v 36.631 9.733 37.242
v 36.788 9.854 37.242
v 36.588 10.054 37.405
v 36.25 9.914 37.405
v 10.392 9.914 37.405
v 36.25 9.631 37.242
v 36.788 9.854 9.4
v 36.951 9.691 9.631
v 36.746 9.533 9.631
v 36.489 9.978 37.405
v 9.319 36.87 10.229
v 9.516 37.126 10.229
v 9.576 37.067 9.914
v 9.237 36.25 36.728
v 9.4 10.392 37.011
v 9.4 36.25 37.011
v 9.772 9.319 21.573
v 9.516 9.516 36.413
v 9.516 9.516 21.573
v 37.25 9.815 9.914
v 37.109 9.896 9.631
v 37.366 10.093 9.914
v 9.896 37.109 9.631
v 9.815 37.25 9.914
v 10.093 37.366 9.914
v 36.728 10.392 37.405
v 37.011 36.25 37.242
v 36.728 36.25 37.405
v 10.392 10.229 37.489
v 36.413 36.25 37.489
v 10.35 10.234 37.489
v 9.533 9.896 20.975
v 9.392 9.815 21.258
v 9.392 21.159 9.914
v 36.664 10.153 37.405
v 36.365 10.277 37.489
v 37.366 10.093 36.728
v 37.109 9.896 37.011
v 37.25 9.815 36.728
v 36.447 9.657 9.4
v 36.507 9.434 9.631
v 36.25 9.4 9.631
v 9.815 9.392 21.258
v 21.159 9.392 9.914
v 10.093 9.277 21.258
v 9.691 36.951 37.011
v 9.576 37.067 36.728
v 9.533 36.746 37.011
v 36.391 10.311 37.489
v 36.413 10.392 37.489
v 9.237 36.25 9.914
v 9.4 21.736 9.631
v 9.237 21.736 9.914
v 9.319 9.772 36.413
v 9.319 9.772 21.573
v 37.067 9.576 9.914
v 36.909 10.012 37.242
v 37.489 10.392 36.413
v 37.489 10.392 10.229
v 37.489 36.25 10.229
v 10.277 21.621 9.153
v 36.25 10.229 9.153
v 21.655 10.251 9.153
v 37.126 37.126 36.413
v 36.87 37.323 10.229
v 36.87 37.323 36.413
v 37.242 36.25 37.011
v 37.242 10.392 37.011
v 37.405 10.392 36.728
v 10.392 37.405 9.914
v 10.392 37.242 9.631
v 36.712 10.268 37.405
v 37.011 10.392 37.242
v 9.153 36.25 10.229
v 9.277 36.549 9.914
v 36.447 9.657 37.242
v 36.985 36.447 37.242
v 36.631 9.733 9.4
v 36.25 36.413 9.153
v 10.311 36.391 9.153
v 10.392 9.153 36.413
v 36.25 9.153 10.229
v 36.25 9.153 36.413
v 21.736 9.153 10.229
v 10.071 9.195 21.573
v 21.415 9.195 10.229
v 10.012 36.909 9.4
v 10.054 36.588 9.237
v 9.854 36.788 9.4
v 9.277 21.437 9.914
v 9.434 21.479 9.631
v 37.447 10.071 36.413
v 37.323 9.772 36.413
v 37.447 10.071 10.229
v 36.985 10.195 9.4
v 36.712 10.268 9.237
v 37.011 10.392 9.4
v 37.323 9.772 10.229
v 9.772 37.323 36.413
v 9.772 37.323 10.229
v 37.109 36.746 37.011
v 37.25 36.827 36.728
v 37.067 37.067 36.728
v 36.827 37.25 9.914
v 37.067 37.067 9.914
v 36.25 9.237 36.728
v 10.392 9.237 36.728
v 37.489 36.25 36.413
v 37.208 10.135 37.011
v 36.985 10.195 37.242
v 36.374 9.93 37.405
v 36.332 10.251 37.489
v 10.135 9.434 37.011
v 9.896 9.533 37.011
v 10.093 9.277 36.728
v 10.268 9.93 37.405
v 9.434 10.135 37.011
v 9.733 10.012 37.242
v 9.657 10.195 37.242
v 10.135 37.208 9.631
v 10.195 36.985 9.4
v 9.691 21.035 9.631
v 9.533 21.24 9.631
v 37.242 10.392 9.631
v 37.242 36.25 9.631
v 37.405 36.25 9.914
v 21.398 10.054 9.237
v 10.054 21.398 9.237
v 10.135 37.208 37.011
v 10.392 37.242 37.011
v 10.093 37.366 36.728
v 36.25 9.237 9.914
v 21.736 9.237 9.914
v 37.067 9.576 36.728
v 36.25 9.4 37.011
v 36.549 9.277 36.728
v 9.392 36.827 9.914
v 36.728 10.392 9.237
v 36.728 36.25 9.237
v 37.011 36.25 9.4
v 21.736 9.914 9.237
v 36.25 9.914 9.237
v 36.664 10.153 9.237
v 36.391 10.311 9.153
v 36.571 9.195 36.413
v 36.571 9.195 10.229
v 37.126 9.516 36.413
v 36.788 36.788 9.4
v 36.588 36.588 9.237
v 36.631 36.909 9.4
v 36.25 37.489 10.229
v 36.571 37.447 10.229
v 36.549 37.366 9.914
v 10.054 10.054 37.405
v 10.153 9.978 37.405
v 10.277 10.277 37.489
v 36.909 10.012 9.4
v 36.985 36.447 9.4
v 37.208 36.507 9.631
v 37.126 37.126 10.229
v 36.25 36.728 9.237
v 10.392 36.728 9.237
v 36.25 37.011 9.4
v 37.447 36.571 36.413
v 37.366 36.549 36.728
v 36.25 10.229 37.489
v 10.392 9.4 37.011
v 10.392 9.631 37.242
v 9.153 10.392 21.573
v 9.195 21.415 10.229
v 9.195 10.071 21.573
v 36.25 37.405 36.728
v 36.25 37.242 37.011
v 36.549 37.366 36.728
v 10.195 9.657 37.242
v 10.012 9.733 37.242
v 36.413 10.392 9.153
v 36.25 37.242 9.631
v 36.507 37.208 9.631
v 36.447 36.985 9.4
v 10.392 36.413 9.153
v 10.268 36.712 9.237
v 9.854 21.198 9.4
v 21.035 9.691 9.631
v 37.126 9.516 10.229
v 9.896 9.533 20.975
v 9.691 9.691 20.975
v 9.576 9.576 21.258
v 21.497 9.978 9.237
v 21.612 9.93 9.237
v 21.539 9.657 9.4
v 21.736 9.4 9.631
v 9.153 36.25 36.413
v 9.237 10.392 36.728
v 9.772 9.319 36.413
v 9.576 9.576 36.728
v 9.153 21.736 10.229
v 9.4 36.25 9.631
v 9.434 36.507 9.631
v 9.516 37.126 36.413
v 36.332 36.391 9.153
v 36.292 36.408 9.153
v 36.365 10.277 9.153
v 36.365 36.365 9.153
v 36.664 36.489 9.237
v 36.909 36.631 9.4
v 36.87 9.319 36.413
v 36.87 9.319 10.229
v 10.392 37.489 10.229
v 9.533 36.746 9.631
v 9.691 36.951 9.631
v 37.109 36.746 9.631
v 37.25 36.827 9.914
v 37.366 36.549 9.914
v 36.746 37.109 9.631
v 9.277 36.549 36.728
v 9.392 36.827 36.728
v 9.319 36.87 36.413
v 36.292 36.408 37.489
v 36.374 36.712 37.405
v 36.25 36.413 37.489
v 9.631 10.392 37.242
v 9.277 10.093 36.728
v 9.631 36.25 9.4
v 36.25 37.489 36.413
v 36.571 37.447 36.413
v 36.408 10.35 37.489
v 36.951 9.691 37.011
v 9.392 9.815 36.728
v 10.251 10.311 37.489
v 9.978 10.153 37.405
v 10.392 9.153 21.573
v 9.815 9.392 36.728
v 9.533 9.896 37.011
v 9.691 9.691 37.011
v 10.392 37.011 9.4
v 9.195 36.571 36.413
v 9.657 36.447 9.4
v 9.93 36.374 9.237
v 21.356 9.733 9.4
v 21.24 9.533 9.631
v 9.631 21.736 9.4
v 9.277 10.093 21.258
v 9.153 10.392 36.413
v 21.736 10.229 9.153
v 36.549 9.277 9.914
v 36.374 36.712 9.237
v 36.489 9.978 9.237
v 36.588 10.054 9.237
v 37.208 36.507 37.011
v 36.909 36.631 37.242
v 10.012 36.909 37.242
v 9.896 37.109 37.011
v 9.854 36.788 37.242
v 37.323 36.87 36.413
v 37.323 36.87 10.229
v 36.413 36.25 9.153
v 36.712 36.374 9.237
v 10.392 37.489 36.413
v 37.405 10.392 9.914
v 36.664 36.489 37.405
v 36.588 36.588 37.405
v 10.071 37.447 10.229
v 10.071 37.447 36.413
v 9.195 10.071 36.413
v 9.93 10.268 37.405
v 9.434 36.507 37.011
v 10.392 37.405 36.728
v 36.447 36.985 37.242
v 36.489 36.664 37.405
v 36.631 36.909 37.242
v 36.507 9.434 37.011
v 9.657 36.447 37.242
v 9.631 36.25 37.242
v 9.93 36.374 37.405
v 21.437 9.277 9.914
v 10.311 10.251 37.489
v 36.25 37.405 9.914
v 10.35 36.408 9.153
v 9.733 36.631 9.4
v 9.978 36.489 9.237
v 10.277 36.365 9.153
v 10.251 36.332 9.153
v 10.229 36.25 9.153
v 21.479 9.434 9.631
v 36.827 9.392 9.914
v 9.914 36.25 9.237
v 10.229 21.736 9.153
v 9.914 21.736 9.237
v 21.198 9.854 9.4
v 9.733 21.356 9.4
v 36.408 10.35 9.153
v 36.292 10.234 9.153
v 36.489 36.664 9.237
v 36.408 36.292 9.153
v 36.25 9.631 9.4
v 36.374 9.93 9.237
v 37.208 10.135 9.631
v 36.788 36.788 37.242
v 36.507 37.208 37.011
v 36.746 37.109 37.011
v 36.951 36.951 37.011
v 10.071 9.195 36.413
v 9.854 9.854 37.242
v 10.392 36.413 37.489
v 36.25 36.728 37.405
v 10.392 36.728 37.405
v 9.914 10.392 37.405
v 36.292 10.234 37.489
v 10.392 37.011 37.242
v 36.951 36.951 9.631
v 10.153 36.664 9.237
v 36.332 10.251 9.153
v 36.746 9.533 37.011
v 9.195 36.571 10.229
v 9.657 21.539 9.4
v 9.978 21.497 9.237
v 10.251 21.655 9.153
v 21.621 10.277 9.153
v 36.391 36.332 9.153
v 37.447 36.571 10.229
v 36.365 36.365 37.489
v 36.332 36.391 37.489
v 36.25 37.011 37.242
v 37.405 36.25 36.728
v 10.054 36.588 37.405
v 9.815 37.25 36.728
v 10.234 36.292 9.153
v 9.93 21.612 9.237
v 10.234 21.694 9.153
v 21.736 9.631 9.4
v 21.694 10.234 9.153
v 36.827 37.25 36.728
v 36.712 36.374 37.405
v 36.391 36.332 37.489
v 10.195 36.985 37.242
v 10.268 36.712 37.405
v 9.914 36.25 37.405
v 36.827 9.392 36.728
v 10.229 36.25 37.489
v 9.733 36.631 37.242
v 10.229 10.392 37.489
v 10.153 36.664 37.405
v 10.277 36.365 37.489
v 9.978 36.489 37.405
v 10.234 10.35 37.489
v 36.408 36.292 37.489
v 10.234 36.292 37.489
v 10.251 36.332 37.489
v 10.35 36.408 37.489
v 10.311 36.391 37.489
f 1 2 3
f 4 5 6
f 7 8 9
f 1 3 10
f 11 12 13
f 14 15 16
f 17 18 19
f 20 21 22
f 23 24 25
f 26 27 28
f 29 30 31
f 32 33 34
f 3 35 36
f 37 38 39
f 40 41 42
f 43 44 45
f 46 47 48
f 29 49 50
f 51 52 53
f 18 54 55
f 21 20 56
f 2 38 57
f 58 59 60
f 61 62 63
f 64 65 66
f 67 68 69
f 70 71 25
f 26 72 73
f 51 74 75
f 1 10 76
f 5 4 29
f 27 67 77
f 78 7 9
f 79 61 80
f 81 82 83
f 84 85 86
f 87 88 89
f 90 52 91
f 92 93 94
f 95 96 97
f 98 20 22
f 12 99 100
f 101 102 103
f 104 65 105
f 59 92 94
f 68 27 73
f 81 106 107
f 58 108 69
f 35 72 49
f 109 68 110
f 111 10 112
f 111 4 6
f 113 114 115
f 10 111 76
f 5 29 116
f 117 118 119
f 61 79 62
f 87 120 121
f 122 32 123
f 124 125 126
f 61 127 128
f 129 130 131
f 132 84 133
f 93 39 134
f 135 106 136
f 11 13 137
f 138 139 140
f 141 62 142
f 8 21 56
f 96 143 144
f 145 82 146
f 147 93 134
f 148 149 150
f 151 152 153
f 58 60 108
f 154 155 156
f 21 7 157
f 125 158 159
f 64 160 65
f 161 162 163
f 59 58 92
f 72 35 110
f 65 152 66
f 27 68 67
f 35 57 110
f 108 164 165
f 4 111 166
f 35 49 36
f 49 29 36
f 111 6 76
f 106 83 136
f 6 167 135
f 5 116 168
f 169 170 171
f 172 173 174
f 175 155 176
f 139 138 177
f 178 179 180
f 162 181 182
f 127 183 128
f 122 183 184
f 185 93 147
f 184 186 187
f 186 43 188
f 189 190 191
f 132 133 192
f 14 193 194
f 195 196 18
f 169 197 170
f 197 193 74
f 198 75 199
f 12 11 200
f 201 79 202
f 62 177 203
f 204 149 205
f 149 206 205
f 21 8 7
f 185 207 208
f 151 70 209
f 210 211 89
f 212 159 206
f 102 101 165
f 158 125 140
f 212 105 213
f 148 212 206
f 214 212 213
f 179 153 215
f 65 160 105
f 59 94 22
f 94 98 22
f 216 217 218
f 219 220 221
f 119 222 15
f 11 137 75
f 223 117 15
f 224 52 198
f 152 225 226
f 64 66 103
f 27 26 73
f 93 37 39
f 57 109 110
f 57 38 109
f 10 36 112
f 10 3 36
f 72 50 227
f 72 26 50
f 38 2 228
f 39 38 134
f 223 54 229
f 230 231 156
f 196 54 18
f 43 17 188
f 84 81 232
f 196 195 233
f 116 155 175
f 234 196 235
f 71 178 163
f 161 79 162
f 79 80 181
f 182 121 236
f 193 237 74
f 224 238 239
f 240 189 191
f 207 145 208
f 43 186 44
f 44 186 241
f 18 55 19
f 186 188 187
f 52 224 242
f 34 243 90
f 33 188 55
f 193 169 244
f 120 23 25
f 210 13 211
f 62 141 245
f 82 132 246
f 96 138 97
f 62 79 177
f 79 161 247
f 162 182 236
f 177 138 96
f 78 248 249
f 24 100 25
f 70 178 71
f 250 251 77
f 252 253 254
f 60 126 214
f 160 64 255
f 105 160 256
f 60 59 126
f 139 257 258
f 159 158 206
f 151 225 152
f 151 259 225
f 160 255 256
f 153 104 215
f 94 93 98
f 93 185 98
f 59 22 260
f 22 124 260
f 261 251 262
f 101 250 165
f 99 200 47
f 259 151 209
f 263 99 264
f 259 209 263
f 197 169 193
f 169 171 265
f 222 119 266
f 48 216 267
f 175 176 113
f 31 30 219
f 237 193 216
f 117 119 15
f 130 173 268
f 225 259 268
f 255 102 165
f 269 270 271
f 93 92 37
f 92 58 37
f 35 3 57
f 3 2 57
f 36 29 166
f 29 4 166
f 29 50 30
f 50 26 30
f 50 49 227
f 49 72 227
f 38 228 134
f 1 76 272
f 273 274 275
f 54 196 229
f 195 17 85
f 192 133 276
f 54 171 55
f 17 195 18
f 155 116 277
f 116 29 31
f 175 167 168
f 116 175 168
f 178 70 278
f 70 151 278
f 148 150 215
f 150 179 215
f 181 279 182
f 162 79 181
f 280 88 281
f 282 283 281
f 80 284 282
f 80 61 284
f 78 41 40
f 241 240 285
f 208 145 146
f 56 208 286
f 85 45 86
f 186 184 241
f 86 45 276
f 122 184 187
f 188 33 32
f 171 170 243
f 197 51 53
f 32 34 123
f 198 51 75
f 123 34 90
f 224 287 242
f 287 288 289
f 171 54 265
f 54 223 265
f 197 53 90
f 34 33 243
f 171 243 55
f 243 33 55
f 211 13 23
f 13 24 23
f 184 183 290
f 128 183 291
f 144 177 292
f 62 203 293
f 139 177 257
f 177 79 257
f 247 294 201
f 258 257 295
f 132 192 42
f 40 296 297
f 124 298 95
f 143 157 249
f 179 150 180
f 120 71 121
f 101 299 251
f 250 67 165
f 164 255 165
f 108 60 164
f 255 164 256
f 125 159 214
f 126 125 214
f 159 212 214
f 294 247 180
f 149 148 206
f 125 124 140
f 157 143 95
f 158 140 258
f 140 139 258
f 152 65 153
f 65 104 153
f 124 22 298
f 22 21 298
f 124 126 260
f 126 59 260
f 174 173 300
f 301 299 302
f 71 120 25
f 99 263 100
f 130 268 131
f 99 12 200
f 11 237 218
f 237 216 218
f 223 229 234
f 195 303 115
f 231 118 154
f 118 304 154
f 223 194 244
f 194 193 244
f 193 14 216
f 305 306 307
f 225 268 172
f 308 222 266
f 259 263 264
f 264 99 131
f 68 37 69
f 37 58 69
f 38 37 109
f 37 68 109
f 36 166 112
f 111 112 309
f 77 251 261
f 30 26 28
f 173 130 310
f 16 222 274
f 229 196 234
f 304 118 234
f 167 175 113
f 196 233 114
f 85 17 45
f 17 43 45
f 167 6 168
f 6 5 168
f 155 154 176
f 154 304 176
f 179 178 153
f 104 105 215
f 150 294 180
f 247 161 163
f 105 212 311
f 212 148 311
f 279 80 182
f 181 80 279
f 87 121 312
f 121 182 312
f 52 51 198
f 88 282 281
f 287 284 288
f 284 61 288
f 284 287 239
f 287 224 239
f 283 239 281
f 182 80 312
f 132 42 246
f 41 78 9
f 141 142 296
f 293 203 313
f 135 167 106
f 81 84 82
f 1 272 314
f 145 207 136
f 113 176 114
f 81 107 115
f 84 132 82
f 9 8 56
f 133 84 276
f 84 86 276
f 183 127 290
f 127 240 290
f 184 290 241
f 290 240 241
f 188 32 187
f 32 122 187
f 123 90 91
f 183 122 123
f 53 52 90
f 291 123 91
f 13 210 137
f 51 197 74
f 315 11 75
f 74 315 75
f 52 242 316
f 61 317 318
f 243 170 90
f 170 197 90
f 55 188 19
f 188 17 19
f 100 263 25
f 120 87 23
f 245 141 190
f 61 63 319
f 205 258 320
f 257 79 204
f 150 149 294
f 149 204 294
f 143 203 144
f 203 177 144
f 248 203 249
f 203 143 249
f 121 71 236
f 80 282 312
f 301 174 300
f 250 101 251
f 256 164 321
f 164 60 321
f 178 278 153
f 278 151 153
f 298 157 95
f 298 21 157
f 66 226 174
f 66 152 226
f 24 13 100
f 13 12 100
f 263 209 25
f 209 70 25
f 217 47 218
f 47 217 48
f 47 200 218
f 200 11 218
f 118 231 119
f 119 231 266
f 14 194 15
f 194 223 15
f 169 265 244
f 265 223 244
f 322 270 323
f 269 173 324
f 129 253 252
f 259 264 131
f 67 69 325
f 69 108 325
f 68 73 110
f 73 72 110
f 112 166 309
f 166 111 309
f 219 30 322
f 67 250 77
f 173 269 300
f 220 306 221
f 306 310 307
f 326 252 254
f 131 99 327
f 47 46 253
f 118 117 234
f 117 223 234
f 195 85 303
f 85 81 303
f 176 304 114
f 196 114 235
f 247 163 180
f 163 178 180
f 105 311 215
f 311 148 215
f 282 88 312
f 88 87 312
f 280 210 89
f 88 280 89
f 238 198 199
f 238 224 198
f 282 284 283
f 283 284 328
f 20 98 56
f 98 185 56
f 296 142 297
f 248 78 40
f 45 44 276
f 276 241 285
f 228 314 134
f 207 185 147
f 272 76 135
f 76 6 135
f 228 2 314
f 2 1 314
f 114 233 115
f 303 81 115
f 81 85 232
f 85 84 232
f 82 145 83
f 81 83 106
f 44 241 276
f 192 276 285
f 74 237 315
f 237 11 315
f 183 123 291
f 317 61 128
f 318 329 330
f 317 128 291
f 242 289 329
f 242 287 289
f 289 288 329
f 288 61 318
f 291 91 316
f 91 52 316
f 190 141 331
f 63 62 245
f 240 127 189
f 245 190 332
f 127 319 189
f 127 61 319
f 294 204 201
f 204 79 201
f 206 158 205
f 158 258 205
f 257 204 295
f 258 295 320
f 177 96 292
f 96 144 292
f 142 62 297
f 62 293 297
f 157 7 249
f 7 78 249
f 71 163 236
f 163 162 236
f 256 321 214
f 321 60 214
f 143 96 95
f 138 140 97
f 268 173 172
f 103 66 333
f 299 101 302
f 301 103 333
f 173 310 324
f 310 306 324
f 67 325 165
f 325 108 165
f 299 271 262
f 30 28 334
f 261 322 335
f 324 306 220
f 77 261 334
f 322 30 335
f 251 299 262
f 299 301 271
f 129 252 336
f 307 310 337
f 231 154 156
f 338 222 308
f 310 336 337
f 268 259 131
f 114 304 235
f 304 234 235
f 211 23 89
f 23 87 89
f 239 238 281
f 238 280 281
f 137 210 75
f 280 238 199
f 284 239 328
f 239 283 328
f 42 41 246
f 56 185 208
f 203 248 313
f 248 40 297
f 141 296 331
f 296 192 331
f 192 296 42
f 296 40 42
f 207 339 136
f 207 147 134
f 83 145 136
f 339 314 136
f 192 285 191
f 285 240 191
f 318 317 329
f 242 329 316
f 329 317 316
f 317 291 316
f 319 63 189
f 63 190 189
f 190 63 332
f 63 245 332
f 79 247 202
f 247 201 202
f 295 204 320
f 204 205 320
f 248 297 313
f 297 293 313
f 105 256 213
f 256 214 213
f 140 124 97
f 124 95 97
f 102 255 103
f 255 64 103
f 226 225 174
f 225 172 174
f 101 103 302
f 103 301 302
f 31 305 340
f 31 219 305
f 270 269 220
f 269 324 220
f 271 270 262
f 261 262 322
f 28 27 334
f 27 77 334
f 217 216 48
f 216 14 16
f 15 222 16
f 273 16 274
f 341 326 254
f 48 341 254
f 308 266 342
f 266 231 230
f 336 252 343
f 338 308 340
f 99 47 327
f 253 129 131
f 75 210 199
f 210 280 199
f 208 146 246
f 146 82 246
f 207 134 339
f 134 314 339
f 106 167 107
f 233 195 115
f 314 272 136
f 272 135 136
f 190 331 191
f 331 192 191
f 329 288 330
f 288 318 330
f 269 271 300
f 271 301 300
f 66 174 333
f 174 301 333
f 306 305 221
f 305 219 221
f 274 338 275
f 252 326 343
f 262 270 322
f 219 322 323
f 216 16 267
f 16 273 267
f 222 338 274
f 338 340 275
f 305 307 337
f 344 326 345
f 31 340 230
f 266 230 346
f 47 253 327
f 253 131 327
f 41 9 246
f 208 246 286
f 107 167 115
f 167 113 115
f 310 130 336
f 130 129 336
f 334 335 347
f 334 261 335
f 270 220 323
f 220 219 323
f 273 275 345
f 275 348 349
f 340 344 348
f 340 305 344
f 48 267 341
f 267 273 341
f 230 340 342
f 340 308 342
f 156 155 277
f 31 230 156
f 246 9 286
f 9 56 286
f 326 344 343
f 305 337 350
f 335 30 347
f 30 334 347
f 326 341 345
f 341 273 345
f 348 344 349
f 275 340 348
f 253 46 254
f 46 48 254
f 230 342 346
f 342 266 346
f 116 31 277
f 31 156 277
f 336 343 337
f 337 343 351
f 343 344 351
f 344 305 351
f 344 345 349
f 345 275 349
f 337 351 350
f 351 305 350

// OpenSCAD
// file: def.scad
round_radius = 1.25;
sticker_margin = 3;
sticker_round_radius = 1;
total_size = 75;
base_size = (total_size - round_radius * 4) / (4 + sqrt(2));
cut1_dis = base_size * sqrt(2) / 2;
cut2_dis = base_size * (1 + sqrt(2) / 2);
cut2_corner_dis = base_size * (sqrt(2) / 2 * sqrt(3) + 1 / 3 * sqrt(3));
inf = total_size * 10;
// main file
include <def.scad>

module corner_block() {
    minkowski() {
        intersection() {
            cube([total_size - round_radius * 2, total_size - round_radius * 2, total_size - round_radius * 2], center = true);
            intersection_for (vec = [[0, 0, 0], [-90, 0, 0], [0, 90, 0]])
                rotate(vec)
                    translate([0, 0, cut1_dis + round_radius])
                        translate([-inf, -inf, 0])
                            cube([inf * 2, inf * 2, inf]);
            rotate([0, atan(sqrt(2)), 45])
                translate([0, 0, cut2_corner_dis + round_radius])
                    translate([-inf, -inf, 0])
                        cube([inf * 2, inf * 2, inf]);
        }
        sphere(round_radius, $fn = 24);
    }
}

corner_block();
